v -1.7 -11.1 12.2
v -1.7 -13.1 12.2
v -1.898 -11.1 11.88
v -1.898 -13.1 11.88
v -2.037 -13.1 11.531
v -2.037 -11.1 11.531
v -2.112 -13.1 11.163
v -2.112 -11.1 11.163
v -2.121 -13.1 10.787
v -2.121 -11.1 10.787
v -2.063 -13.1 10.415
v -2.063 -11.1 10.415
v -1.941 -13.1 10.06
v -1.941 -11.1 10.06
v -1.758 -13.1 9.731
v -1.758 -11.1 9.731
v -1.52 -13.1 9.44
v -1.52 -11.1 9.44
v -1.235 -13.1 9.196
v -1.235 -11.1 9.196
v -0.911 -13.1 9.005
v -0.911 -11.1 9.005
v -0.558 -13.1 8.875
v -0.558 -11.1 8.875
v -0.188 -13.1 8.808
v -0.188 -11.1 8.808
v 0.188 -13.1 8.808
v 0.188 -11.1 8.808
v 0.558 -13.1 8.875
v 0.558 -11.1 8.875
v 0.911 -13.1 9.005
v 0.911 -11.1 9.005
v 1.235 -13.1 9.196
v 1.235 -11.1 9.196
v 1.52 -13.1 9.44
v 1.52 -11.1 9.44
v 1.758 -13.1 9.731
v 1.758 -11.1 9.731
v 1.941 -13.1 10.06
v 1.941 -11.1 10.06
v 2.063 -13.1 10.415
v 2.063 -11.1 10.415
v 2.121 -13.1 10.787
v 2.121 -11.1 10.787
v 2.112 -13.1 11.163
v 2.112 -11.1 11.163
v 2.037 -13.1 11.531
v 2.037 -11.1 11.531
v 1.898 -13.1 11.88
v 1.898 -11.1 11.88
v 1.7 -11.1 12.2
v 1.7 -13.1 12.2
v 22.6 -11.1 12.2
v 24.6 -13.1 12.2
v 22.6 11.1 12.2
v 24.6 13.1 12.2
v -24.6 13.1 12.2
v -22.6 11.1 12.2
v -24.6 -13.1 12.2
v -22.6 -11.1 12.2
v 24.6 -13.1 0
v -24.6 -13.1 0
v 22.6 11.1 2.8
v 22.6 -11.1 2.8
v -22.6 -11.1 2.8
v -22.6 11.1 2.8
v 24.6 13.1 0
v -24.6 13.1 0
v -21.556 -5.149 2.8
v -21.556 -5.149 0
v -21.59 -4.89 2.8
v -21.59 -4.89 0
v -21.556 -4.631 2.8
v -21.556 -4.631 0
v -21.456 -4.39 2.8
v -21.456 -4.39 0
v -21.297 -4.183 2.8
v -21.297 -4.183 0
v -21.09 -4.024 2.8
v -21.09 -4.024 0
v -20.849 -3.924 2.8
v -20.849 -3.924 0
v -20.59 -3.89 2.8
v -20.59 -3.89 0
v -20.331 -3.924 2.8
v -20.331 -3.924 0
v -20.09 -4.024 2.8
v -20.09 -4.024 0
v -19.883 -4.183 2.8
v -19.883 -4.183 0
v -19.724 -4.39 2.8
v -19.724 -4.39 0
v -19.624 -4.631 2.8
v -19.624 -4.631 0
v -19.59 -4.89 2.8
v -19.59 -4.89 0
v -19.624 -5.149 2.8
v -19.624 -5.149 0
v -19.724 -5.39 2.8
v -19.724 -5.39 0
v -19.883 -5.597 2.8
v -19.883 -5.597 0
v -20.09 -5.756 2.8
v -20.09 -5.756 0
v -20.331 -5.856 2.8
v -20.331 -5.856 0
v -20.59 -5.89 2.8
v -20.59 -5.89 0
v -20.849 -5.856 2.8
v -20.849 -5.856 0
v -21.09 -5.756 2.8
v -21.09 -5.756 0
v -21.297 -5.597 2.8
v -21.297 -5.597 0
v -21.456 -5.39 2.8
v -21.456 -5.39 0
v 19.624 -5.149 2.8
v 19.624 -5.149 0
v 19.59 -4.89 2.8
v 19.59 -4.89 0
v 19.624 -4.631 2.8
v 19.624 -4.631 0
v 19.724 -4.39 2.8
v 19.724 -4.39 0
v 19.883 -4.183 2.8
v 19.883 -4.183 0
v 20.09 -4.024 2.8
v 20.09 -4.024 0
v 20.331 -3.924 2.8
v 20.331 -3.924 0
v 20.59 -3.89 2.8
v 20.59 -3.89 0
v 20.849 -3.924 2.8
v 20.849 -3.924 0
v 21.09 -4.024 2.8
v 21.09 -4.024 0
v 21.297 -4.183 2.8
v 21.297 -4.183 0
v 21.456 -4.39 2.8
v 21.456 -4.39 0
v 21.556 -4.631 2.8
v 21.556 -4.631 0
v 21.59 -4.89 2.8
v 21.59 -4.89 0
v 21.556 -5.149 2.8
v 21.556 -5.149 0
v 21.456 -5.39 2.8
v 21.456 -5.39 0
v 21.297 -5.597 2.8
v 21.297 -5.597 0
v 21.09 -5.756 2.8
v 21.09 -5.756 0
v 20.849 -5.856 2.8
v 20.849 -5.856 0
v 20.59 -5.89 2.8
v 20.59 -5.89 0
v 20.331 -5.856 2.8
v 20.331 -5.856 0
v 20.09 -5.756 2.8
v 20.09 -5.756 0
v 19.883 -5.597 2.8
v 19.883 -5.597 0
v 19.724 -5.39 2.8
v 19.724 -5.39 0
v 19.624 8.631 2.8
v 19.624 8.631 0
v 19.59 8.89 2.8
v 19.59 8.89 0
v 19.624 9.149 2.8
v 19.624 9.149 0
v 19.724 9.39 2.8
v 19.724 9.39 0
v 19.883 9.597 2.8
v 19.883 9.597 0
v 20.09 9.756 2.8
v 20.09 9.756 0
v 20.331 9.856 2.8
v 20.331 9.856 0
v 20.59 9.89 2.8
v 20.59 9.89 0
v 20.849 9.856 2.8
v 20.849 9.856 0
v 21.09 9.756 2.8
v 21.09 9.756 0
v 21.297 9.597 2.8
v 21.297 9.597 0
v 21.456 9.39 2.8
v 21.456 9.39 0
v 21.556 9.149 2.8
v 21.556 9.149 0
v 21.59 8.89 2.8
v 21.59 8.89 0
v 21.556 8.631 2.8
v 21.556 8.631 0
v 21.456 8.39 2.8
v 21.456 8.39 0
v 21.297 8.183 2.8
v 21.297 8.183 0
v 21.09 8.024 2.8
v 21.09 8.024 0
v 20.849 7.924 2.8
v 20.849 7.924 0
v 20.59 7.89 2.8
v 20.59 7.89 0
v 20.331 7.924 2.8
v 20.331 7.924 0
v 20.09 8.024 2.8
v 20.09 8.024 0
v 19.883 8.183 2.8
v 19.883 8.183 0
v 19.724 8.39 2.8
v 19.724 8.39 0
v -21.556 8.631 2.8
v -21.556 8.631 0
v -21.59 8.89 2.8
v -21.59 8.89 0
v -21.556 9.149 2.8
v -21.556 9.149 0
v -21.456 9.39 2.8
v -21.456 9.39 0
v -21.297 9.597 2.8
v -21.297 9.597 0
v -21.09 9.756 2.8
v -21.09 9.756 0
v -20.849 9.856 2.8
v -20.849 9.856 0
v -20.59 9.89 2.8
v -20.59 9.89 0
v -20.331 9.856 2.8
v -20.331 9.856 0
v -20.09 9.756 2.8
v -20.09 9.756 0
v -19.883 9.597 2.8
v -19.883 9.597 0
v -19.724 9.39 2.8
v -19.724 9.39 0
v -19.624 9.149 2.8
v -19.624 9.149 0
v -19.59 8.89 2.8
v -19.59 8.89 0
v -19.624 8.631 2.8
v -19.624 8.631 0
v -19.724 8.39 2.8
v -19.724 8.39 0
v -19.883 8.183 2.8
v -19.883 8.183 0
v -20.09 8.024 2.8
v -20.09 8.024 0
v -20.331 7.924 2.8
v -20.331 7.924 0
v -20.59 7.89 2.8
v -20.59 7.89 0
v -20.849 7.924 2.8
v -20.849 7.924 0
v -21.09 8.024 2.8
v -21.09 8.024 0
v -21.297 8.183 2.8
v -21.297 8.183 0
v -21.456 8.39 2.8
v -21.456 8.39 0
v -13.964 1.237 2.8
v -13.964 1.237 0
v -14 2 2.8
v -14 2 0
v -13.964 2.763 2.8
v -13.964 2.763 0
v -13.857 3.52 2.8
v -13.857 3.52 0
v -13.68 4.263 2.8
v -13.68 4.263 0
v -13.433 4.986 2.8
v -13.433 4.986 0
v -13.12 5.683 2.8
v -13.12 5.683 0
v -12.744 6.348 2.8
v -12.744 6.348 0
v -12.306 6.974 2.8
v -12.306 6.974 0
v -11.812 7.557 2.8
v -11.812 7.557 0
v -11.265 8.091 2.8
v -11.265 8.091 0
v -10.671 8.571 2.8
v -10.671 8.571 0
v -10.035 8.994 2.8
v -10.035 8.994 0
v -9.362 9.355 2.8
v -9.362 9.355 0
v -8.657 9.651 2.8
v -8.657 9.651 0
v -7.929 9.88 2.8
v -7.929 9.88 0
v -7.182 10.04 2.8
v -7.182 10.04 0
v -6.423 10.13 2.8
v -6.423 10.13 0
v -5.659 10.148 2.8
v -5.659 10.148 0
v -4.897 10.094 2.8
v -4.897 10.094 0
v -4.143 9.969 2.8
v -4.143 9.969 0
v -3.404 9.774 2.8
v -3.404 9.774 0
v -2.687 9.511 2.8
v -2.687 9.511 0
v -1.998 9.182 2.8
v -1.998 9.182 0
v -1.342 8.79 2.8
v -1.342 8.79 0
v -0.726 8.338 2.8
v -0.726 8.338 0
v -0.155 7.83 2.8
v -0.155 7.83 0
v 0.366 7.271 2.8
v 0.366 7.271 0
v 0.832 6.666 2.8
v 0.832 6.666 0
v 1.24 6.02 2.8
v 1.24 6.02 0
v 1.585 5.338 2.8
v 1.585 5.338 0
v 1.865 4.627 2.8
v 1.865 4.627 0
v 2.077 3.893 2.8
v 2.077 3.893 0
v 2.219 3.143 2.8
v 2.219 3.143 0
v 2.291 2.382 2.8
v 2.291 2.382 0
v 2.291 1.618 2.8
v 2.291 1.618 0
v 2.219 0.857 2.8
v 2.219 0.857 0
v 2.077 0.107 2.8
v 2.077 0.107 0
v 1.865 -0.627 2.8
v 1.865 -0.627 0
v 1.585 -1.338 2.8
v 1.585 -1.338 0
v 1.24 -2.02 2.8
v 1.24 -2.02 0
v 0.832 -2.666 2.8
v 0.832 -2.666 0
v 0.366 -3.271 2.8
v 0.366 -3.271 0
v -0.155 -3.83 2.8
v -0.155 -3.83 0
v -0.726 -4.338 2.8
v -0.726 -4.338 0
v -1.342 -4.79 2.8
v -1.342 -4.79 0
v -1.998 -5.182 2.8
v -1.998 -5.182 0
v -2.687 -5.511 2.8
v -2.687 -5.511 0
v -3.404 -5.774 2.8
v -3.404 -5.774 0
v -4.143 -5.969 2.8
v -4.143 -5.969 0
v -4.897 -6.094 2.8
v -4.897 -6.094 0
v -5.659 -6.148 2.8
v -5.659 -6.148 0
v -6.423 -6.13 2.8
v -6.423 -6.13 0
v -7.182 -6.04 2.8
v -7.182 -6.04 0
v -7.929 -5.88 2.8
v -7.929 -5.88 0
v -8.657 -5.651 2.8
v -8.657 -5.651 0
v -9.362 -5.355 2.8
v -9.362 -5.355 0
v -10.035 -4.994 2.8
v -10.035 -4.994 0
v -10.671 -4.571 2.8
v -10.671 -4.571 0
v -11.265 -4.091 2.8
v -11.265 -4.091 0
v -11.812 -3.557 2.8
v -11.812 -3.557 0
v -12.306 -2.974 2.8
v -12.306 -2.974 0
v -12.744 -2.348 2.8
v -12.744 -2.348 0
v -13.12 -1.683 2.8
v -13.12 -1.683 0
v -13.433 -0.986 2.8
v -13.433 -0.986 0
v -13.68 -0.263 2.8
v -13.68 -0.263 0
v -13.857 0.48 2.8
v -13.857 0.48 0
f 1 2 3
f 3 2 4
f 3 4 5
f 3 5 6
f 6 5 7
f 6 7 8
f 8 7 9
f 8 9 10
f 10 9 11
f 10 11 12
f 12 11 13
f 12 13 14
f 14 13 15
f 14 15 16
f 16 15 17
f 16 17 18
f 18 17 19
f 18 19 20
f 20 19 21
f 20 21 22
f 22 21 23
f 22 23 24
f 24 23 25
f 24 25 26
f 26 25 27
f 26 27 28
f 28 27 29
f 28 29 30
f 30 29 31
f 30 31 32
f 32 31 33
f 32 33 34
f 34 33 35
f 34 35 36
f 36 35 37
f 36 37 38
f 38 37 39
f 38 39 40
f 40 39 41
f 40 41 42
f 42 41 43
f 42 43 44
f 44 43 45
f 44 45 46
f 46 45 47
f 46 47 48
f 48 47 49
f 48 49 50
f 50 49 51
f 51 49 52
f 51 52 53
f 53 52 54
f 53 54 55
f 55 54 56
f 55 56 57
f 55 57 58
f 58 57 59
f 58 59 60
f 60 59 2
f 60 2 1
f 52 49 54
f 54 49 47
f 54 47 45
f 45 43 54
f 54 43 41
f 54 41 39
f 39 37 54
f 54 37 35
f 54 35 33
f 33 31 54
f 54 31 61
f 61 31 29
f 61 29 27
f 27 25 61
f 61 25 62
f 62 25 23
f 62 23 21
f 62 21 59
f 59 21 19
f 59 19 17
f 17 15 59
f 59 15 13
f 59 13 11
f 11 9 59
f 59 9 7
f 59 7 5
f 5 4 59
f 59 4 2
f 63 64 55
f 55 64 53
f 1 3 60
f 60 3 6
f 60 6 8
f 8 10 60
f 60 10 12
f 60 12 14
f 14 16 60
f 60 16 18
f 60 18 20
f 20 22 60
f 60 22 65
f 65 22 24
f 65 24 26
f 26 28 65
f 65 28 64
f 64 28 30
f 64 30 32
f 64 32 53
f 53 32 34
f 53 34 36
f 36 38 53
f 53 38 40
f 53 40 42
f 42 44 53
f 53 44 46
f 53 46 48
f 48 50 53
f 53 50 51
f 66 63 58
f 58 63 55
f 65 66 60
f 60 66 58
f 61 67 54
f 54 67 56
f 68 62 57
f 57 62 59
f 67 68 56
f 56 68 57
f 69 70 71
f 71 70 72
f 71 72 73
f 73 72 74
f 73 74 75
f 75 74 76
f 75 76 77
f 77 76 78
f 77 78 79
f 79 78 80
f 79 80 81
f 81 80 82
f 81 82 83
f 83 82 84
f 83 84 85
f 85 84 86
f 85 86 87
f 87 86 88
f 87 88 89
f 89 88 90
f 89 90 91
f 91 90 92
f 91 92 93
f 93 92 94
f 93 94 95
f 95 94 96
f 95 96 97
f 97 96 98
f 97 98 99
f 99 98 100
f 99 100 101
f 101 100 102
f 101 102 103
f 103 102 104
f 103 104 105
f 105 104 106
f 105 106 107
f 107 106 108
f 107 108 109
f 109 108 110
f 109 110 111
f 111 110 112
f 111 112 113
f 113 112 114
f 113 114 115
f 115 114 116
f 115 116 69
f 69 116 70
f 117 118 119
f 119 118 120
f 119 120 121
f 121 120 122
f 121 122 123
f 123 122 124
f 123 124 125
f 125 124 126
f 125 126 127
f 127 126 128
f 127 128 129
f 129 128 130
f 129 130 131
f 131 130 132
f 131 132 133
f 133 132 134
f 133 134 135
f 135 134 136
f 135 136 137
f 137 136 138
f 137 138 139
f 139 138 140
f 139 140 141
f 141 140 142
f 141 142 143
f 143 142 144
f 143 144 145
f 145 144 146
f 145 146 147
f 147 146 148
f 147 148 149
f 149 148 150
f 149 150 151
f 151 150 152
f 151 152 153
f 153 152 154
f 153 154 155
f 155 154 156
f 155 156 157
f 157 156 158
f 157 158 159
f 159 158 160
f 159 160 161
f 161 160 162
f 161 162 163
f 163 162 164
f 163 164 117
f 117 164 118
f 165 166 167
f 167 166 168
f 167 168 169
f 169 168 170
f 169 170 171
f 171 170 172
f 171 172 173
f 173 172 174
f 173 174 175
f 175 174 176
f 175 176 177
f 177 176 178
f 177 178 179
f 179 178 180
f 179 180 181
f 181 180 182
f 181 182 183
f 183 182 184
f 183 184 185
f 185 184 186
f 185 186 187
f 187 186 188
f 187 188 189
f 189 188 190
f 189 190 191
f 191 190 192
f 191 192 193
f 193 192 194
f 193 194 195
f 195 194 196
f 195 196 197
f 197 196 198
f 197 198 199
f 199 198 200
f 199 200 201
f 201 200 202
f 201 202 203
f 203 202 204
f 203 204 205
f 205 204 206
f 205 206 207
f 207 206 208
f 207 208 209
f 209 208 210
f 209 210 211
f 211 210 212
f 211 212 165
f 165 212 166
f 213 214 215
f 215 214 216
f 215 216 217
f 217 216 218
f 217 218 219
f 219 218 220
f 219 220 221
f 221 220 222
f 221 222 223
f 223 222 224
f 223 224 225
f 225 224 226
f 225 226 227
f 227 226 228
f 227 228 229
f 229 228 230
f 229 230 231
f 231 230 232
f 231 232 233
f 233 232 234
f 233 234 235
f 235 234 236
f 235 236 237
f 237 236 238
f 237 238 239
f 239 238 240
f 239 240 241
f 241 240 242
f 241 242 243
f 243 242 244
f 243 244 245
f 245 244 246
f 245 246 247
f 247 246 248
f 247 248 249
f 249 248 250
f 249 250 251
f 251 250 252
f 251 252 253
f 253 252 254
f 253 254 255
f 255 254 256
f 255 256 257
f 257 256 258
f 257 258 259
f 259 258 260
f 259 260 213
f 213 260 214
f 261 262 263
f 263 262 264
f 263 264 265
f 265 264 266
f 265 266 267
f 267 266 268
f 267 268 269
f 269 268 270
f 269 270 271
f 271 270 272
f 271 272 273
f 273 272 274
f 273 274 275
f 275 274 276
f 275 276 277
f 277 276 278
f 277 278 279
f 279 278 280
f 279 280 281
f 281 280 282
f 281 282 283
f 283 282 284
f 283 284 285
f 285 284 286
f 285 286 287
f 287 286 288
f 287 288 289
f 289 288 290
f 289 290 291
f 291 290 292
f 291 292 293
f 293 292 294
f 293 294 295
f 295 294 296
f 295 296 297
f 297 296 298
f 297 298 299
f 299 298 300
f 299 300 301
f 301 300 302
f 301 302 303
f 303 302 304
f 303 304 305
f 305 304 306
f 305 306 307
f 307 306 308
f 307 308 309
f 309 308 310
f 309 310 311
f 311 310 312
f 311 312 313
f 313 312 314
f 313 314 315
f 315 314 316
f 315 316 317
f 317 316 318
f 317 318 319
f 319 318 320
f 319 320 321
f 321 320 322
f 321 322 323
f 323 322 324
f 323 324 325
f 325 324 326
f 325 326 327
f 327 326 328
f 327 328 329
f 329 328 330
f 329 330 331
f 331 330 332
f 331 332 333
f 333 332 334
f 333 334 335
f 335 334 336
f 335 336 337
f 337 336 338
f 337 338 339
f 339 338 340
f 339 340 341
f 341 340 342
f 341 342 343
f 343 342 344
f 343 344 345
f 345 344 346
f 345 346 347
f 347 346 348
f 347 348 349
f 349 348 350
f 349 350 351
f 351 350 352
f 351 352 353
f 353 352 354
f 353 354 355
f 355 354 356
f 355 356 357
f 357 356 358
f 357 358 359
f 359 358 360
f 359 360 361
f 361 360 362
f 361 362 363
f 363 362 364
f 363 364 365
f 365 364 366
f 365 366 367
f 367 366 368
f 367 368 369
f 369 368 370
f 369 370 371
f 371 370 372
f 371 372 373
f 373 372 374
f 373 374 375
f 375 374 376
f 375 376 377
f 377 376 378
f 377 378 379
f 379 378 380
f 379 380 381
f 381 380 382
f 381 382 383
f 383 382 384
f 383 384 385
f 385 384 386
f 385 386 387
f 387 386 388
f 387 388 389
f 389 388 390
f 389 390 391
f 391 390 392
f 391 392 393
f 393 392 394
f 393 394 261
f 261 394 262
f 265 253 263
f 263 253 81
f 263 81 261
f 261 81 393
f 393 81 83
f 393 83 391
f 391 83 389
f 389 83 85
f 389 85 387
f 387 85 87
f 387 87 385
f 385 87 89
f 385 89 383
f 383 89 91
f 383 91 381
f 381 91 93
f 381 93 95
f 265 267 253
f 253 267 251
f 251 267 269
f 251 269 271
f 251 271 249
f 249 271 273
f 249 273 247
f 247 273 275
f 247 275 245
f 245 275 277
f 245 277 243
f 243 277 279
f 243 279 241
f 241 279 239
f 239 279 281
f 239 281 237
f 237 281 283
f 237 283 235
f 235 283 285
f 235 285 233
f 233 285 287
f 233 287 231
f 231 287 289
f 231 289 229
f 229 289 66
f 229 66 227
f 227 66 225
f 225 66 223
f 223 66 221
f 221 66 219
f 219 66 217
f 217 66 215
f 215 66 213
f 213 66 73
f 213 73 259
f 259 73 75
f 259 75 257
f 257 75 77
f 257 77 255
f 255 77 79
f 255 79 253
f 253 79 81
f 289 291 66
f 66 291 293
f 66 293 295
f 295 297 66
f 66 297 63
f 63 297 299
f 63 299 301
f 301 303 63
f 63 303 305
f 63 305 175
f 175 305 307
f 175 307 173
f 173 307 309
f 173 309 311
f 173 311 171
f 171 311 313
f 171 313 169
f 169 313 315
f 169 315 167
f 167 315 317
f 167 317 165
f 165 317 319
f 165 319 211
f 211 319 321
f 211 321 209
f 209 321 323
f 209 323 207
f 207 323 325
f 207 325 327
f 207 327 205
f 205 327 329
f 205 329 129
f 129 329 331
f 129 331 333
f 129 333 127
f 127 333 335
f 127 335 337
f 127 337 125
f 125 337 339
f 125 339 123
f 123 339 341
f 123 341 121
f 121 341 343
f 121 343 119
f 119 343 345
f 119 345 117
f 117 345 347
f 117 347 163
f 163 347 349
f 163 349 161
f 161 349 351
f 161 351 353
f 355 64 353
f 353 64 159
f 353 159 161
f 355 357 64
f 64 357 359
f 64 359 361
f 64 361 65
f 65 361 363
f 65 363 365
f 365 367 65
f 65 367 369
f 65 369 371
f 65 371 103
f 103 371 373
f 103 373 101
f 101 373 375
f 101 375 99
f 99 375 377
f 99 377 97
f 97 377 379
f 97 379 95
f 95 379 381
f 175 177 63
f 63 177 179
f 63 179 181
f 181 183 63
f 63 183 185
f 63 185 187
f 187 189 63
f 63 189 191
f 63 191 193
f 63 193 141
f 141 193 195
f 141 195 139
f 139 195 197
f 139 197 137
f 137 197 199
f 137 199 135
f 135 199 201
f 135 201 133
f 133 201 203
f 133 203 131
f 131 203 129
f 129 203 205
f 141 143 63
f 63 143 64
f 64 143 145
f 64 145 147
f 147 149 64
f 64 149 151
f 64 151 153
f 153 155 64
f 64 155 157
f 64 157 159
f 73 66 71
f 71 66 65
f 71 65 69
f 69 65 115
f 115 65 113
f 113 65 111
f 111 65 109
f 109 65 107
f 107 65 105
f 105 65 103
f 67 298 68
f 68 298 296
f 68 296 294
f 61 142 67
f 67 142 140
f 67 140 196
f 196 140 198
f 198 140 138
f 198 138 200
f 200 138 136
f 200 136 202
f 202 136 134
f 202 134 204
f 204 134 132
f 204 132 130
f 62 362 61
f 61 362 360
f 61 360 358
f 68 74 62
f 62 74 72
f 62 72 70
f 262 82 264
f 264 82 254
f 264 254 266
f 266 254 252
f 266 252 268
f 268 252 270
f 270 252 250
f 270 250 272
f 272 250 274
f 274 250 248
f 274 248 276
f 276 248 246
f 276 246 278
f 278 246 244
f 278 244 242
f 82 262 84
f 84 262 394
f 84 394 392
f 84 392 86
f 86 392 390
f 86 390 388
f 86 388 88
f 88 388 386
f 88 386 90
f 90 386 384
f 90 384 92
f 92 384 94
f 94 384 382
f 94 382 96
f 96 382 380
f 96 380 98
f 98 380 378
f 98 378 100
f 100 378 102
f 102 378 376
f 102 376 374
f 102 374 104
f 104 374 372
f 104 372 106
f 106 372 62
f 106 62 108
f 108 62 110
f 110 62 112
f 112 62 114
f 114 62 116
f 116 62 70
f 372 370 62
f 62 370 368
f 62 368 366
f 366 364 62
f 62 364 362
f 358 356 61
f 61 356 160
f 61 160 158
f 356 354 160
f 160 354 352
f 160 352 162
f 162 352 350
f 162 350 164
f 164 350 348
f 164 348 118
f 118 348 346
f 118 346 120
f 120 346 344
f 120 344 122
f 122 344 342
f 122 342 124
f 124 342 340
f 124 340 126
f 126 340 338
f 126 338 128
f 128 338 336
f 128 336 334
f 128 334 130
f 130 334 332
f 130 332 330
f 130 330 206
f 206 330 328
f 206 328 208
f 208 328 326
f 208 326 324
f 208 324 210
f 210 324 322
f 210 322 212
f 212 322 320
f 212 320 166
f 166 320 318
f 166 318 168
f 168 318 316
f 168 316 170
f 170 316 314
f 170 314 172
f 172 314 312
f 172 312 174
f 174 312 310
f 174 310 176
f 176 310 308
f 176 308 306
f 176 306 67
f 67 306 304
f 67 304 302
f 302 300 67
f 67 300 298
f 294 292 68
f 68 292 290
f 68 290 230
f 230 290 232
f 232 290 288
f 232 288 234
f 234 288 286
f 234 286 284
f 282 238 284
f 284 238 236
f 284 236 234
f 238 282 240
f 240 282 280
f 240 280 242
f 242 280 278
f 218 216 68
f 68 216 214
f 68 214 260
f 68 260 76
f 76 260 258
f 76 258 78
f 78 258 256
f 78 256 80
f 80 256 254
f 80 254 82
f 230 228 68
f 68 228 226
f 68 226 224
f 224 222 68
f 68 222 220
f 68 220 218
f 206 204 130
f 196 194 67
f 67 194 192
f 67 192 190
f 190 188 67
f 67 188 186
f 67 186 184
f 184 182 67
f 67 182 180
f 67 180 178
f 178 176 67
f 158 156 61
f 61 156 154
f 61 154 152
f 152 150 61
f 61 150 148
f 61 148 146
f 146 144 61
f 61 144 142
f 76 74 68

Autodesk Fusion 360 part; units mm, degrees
sketch "Boceto1" plane through (0, 0, 0) normal (0, 0, 1) x (1, 0, 0)
  line L0 (-22.6, -11.1) -> (22.6, -11.1)
  line L1 (22.6, -11.1) -> (22.6, 11.1)
  line L2 (22.6, 11.1) -> (-22.6, 11.1)
  line L3 (-22.6, 11.1) -> (-22.6, -11.1)
  line L4 (-22.6, -11.1) -> (22.6, 11.1) construction
  line L5 (22.6, -11.1) -> (-22.6, 11.1) construction
  circle A0 centre (-5.85, 2) radius 8.15
  circle A1 centre (-20.59, 8.89) radius 1
  line L6 (0, 11.1) -> (0, -11.1) construction
  line L7 (22.6, 13.1) -> (-22.6, 13.1)
  line L8 (-22.6, 13.1) -> (-22.6, 11.1)
  line L9 (-22.6, 11.1) -> (22.6, 11.1)
  line L10 (22.6, 11.1) -> (22.6, 13.1)
  line L11 (22.6, 13.1) -> (-22.6, 11.1) construction
  line L12 (-22.6, 13.1) -> (22.6, 11.1) construction
  line L13 (22.6, -13.1) -> (-22.6, -13.1)
  line L14 (-22.6, -13.1) -> (-22.6, -11.1)
  line L15 (-22.6, -11.1) -> (22.6, -11.1)
  line L16 (22.6, -11.1) -> (22.6, -13.1)
  line L17 (22.6, -13.1) -> (-22.6, -11.1) construction
  line L18 (-22.6, -13.1) -> (22.6, -11.1) construction
  line L19 (24.6, -13.1) -> (22.6, -13.1)
  line L20 (22.6, -13.1) -> (22.6, 13.1)
  line L21 (22.6, 13.1) -> (24.6, 13.1)
  line L22 (24.6, 13.1) -> (24.6, -13.1)
  line L23 (24.6, -13.1) -> (22.6, 13.1) construction
  line L24 (22.6, -13.1) -> (24.6, 13.1) construction
  line L25 (-22.6, -13.1) -> (-24.6, -13.1)
  line L26 (-24.6, -13.1) -> (-24.6, 13.1)
  line L27 (-24.6, 13.1) -> (-22.6, 13.1)
  line L28 (-22.6, 13.1) -> (-22.6, -13.1)
  line L29 (-22.6, -13.1) -> (-24.6, 13.1) construction
  line L30 (-24.6, -13.1) -> (-22.6, 13.1) construction
  circle A2 centre (-20.59, -4.89) radius 1
  circle A3 centre (20.59, 8.89) radius 1
  circle A4 centre (20.59, -4.89) radius 1
  point P0 (0, 12.1)
  point P1 (0, -12.1)
  point P2 (23.6, 0)
  point P3 (-23.6, 0)
  dimension "d5" = 22.2
  dimension "d6" = 45.2
  dimension "d7" = 16.3
  dimension "d10" = 2
  dimension "d11" = 2.01
  dimension "d12" = 2.21
  dimension "d13" = 45.2
  dimension "d14" = 2
  dimension "d15" = 45.2
  dimension "d16" = 2
  dimension "d17" = 2
  dimension "d18" = 26.2
  dimension "d19" = 2
  dimension "d20" = 26.2
  dimension "d26" = 16.75
  dimension "d27" = 9.1
  dimension "d28" = 2
  dimension "d29" = 2.01
  dimension "d30" = 6.21
extrude "Extruir1" add sketch "Boceto1" along normal blind 2.8 contours L0 L1 L2 L3 L9 L15 L20 L28
extrude "Extruir2" add sketch "Boceto1" along normal blind 12.2 contours L3 L8 L14 L25 L26 L27 L28 | L0 L13 L14 L15 L16 L20 L28 | L1 L10 L16 L19 L20 L21 L22 | L2 L7 L8 L9 L10 L20 L28
sketch "Boceto2" plane through (0, -13.1, 0) normal (0, -1, 0) x (1, 0, 0)
  line L0 (-24.6, 0) -> (24.6, 0)
  line L1 (24.6, 0) -> (24.6, 12.2)
  line L2 (24.6, 12.2) -> (-24.6, 12.2)
  line L3 (-24.6, 12.2) -> (-24.6, 0)
  arc A0 (-1.7, 12.2) -> (1.7, 12.2) centre (0, 10.925) ccw
  line L4 (-1.7, 12.2) -> (1.7, 12.2) construction
  line L5 (0, 12.2) -> (0, 8.8) construction
  dimension "d31" = 3.4
  dimension "d32" = 3.4
extrude "Extruir3" cut sketch "Boceto2" against normal blind 2 contours L2 A0
equation "grosor1 = 2.8 mm"
equation "grosor2 = 2 mm"
equation "grosor3 = 7.5 mm"
equation "tolerancia = 0.1 mm"
equation "d5 = 18 mm + tolerancia * 2 + margen_cable"
equation "d6 = 45 mm + tolerancia * 2"
equation "d7 = 16.2 mm + tolerancia"
equation "d10 = 1.9 mm + tolerancia"
equation "d11 = 1.91 mm + tolerancia"
equation "d12 = 2.11 mm + tolerancia"
equation "d13 = d6"
equation "d14 = grosor2"
equation "d15 = d6"
equation "d16 = grosor2"
equation "d17 = grosor2"
equation "d18 = d5 + grosor2 * 2"
equation "d19 = grosor2"
equation "d20 = d5 + grosor2 * 2"
equation "d21 = grosor1"
equation "d23 = 10.2 mm + grosor2"
equation "margen_cable = 4 mm"
equation "d28 = d10"
equation "d29 = d11"
equation "d30 = d12 + margen_cable"
equation "d33 = -grosor2"
